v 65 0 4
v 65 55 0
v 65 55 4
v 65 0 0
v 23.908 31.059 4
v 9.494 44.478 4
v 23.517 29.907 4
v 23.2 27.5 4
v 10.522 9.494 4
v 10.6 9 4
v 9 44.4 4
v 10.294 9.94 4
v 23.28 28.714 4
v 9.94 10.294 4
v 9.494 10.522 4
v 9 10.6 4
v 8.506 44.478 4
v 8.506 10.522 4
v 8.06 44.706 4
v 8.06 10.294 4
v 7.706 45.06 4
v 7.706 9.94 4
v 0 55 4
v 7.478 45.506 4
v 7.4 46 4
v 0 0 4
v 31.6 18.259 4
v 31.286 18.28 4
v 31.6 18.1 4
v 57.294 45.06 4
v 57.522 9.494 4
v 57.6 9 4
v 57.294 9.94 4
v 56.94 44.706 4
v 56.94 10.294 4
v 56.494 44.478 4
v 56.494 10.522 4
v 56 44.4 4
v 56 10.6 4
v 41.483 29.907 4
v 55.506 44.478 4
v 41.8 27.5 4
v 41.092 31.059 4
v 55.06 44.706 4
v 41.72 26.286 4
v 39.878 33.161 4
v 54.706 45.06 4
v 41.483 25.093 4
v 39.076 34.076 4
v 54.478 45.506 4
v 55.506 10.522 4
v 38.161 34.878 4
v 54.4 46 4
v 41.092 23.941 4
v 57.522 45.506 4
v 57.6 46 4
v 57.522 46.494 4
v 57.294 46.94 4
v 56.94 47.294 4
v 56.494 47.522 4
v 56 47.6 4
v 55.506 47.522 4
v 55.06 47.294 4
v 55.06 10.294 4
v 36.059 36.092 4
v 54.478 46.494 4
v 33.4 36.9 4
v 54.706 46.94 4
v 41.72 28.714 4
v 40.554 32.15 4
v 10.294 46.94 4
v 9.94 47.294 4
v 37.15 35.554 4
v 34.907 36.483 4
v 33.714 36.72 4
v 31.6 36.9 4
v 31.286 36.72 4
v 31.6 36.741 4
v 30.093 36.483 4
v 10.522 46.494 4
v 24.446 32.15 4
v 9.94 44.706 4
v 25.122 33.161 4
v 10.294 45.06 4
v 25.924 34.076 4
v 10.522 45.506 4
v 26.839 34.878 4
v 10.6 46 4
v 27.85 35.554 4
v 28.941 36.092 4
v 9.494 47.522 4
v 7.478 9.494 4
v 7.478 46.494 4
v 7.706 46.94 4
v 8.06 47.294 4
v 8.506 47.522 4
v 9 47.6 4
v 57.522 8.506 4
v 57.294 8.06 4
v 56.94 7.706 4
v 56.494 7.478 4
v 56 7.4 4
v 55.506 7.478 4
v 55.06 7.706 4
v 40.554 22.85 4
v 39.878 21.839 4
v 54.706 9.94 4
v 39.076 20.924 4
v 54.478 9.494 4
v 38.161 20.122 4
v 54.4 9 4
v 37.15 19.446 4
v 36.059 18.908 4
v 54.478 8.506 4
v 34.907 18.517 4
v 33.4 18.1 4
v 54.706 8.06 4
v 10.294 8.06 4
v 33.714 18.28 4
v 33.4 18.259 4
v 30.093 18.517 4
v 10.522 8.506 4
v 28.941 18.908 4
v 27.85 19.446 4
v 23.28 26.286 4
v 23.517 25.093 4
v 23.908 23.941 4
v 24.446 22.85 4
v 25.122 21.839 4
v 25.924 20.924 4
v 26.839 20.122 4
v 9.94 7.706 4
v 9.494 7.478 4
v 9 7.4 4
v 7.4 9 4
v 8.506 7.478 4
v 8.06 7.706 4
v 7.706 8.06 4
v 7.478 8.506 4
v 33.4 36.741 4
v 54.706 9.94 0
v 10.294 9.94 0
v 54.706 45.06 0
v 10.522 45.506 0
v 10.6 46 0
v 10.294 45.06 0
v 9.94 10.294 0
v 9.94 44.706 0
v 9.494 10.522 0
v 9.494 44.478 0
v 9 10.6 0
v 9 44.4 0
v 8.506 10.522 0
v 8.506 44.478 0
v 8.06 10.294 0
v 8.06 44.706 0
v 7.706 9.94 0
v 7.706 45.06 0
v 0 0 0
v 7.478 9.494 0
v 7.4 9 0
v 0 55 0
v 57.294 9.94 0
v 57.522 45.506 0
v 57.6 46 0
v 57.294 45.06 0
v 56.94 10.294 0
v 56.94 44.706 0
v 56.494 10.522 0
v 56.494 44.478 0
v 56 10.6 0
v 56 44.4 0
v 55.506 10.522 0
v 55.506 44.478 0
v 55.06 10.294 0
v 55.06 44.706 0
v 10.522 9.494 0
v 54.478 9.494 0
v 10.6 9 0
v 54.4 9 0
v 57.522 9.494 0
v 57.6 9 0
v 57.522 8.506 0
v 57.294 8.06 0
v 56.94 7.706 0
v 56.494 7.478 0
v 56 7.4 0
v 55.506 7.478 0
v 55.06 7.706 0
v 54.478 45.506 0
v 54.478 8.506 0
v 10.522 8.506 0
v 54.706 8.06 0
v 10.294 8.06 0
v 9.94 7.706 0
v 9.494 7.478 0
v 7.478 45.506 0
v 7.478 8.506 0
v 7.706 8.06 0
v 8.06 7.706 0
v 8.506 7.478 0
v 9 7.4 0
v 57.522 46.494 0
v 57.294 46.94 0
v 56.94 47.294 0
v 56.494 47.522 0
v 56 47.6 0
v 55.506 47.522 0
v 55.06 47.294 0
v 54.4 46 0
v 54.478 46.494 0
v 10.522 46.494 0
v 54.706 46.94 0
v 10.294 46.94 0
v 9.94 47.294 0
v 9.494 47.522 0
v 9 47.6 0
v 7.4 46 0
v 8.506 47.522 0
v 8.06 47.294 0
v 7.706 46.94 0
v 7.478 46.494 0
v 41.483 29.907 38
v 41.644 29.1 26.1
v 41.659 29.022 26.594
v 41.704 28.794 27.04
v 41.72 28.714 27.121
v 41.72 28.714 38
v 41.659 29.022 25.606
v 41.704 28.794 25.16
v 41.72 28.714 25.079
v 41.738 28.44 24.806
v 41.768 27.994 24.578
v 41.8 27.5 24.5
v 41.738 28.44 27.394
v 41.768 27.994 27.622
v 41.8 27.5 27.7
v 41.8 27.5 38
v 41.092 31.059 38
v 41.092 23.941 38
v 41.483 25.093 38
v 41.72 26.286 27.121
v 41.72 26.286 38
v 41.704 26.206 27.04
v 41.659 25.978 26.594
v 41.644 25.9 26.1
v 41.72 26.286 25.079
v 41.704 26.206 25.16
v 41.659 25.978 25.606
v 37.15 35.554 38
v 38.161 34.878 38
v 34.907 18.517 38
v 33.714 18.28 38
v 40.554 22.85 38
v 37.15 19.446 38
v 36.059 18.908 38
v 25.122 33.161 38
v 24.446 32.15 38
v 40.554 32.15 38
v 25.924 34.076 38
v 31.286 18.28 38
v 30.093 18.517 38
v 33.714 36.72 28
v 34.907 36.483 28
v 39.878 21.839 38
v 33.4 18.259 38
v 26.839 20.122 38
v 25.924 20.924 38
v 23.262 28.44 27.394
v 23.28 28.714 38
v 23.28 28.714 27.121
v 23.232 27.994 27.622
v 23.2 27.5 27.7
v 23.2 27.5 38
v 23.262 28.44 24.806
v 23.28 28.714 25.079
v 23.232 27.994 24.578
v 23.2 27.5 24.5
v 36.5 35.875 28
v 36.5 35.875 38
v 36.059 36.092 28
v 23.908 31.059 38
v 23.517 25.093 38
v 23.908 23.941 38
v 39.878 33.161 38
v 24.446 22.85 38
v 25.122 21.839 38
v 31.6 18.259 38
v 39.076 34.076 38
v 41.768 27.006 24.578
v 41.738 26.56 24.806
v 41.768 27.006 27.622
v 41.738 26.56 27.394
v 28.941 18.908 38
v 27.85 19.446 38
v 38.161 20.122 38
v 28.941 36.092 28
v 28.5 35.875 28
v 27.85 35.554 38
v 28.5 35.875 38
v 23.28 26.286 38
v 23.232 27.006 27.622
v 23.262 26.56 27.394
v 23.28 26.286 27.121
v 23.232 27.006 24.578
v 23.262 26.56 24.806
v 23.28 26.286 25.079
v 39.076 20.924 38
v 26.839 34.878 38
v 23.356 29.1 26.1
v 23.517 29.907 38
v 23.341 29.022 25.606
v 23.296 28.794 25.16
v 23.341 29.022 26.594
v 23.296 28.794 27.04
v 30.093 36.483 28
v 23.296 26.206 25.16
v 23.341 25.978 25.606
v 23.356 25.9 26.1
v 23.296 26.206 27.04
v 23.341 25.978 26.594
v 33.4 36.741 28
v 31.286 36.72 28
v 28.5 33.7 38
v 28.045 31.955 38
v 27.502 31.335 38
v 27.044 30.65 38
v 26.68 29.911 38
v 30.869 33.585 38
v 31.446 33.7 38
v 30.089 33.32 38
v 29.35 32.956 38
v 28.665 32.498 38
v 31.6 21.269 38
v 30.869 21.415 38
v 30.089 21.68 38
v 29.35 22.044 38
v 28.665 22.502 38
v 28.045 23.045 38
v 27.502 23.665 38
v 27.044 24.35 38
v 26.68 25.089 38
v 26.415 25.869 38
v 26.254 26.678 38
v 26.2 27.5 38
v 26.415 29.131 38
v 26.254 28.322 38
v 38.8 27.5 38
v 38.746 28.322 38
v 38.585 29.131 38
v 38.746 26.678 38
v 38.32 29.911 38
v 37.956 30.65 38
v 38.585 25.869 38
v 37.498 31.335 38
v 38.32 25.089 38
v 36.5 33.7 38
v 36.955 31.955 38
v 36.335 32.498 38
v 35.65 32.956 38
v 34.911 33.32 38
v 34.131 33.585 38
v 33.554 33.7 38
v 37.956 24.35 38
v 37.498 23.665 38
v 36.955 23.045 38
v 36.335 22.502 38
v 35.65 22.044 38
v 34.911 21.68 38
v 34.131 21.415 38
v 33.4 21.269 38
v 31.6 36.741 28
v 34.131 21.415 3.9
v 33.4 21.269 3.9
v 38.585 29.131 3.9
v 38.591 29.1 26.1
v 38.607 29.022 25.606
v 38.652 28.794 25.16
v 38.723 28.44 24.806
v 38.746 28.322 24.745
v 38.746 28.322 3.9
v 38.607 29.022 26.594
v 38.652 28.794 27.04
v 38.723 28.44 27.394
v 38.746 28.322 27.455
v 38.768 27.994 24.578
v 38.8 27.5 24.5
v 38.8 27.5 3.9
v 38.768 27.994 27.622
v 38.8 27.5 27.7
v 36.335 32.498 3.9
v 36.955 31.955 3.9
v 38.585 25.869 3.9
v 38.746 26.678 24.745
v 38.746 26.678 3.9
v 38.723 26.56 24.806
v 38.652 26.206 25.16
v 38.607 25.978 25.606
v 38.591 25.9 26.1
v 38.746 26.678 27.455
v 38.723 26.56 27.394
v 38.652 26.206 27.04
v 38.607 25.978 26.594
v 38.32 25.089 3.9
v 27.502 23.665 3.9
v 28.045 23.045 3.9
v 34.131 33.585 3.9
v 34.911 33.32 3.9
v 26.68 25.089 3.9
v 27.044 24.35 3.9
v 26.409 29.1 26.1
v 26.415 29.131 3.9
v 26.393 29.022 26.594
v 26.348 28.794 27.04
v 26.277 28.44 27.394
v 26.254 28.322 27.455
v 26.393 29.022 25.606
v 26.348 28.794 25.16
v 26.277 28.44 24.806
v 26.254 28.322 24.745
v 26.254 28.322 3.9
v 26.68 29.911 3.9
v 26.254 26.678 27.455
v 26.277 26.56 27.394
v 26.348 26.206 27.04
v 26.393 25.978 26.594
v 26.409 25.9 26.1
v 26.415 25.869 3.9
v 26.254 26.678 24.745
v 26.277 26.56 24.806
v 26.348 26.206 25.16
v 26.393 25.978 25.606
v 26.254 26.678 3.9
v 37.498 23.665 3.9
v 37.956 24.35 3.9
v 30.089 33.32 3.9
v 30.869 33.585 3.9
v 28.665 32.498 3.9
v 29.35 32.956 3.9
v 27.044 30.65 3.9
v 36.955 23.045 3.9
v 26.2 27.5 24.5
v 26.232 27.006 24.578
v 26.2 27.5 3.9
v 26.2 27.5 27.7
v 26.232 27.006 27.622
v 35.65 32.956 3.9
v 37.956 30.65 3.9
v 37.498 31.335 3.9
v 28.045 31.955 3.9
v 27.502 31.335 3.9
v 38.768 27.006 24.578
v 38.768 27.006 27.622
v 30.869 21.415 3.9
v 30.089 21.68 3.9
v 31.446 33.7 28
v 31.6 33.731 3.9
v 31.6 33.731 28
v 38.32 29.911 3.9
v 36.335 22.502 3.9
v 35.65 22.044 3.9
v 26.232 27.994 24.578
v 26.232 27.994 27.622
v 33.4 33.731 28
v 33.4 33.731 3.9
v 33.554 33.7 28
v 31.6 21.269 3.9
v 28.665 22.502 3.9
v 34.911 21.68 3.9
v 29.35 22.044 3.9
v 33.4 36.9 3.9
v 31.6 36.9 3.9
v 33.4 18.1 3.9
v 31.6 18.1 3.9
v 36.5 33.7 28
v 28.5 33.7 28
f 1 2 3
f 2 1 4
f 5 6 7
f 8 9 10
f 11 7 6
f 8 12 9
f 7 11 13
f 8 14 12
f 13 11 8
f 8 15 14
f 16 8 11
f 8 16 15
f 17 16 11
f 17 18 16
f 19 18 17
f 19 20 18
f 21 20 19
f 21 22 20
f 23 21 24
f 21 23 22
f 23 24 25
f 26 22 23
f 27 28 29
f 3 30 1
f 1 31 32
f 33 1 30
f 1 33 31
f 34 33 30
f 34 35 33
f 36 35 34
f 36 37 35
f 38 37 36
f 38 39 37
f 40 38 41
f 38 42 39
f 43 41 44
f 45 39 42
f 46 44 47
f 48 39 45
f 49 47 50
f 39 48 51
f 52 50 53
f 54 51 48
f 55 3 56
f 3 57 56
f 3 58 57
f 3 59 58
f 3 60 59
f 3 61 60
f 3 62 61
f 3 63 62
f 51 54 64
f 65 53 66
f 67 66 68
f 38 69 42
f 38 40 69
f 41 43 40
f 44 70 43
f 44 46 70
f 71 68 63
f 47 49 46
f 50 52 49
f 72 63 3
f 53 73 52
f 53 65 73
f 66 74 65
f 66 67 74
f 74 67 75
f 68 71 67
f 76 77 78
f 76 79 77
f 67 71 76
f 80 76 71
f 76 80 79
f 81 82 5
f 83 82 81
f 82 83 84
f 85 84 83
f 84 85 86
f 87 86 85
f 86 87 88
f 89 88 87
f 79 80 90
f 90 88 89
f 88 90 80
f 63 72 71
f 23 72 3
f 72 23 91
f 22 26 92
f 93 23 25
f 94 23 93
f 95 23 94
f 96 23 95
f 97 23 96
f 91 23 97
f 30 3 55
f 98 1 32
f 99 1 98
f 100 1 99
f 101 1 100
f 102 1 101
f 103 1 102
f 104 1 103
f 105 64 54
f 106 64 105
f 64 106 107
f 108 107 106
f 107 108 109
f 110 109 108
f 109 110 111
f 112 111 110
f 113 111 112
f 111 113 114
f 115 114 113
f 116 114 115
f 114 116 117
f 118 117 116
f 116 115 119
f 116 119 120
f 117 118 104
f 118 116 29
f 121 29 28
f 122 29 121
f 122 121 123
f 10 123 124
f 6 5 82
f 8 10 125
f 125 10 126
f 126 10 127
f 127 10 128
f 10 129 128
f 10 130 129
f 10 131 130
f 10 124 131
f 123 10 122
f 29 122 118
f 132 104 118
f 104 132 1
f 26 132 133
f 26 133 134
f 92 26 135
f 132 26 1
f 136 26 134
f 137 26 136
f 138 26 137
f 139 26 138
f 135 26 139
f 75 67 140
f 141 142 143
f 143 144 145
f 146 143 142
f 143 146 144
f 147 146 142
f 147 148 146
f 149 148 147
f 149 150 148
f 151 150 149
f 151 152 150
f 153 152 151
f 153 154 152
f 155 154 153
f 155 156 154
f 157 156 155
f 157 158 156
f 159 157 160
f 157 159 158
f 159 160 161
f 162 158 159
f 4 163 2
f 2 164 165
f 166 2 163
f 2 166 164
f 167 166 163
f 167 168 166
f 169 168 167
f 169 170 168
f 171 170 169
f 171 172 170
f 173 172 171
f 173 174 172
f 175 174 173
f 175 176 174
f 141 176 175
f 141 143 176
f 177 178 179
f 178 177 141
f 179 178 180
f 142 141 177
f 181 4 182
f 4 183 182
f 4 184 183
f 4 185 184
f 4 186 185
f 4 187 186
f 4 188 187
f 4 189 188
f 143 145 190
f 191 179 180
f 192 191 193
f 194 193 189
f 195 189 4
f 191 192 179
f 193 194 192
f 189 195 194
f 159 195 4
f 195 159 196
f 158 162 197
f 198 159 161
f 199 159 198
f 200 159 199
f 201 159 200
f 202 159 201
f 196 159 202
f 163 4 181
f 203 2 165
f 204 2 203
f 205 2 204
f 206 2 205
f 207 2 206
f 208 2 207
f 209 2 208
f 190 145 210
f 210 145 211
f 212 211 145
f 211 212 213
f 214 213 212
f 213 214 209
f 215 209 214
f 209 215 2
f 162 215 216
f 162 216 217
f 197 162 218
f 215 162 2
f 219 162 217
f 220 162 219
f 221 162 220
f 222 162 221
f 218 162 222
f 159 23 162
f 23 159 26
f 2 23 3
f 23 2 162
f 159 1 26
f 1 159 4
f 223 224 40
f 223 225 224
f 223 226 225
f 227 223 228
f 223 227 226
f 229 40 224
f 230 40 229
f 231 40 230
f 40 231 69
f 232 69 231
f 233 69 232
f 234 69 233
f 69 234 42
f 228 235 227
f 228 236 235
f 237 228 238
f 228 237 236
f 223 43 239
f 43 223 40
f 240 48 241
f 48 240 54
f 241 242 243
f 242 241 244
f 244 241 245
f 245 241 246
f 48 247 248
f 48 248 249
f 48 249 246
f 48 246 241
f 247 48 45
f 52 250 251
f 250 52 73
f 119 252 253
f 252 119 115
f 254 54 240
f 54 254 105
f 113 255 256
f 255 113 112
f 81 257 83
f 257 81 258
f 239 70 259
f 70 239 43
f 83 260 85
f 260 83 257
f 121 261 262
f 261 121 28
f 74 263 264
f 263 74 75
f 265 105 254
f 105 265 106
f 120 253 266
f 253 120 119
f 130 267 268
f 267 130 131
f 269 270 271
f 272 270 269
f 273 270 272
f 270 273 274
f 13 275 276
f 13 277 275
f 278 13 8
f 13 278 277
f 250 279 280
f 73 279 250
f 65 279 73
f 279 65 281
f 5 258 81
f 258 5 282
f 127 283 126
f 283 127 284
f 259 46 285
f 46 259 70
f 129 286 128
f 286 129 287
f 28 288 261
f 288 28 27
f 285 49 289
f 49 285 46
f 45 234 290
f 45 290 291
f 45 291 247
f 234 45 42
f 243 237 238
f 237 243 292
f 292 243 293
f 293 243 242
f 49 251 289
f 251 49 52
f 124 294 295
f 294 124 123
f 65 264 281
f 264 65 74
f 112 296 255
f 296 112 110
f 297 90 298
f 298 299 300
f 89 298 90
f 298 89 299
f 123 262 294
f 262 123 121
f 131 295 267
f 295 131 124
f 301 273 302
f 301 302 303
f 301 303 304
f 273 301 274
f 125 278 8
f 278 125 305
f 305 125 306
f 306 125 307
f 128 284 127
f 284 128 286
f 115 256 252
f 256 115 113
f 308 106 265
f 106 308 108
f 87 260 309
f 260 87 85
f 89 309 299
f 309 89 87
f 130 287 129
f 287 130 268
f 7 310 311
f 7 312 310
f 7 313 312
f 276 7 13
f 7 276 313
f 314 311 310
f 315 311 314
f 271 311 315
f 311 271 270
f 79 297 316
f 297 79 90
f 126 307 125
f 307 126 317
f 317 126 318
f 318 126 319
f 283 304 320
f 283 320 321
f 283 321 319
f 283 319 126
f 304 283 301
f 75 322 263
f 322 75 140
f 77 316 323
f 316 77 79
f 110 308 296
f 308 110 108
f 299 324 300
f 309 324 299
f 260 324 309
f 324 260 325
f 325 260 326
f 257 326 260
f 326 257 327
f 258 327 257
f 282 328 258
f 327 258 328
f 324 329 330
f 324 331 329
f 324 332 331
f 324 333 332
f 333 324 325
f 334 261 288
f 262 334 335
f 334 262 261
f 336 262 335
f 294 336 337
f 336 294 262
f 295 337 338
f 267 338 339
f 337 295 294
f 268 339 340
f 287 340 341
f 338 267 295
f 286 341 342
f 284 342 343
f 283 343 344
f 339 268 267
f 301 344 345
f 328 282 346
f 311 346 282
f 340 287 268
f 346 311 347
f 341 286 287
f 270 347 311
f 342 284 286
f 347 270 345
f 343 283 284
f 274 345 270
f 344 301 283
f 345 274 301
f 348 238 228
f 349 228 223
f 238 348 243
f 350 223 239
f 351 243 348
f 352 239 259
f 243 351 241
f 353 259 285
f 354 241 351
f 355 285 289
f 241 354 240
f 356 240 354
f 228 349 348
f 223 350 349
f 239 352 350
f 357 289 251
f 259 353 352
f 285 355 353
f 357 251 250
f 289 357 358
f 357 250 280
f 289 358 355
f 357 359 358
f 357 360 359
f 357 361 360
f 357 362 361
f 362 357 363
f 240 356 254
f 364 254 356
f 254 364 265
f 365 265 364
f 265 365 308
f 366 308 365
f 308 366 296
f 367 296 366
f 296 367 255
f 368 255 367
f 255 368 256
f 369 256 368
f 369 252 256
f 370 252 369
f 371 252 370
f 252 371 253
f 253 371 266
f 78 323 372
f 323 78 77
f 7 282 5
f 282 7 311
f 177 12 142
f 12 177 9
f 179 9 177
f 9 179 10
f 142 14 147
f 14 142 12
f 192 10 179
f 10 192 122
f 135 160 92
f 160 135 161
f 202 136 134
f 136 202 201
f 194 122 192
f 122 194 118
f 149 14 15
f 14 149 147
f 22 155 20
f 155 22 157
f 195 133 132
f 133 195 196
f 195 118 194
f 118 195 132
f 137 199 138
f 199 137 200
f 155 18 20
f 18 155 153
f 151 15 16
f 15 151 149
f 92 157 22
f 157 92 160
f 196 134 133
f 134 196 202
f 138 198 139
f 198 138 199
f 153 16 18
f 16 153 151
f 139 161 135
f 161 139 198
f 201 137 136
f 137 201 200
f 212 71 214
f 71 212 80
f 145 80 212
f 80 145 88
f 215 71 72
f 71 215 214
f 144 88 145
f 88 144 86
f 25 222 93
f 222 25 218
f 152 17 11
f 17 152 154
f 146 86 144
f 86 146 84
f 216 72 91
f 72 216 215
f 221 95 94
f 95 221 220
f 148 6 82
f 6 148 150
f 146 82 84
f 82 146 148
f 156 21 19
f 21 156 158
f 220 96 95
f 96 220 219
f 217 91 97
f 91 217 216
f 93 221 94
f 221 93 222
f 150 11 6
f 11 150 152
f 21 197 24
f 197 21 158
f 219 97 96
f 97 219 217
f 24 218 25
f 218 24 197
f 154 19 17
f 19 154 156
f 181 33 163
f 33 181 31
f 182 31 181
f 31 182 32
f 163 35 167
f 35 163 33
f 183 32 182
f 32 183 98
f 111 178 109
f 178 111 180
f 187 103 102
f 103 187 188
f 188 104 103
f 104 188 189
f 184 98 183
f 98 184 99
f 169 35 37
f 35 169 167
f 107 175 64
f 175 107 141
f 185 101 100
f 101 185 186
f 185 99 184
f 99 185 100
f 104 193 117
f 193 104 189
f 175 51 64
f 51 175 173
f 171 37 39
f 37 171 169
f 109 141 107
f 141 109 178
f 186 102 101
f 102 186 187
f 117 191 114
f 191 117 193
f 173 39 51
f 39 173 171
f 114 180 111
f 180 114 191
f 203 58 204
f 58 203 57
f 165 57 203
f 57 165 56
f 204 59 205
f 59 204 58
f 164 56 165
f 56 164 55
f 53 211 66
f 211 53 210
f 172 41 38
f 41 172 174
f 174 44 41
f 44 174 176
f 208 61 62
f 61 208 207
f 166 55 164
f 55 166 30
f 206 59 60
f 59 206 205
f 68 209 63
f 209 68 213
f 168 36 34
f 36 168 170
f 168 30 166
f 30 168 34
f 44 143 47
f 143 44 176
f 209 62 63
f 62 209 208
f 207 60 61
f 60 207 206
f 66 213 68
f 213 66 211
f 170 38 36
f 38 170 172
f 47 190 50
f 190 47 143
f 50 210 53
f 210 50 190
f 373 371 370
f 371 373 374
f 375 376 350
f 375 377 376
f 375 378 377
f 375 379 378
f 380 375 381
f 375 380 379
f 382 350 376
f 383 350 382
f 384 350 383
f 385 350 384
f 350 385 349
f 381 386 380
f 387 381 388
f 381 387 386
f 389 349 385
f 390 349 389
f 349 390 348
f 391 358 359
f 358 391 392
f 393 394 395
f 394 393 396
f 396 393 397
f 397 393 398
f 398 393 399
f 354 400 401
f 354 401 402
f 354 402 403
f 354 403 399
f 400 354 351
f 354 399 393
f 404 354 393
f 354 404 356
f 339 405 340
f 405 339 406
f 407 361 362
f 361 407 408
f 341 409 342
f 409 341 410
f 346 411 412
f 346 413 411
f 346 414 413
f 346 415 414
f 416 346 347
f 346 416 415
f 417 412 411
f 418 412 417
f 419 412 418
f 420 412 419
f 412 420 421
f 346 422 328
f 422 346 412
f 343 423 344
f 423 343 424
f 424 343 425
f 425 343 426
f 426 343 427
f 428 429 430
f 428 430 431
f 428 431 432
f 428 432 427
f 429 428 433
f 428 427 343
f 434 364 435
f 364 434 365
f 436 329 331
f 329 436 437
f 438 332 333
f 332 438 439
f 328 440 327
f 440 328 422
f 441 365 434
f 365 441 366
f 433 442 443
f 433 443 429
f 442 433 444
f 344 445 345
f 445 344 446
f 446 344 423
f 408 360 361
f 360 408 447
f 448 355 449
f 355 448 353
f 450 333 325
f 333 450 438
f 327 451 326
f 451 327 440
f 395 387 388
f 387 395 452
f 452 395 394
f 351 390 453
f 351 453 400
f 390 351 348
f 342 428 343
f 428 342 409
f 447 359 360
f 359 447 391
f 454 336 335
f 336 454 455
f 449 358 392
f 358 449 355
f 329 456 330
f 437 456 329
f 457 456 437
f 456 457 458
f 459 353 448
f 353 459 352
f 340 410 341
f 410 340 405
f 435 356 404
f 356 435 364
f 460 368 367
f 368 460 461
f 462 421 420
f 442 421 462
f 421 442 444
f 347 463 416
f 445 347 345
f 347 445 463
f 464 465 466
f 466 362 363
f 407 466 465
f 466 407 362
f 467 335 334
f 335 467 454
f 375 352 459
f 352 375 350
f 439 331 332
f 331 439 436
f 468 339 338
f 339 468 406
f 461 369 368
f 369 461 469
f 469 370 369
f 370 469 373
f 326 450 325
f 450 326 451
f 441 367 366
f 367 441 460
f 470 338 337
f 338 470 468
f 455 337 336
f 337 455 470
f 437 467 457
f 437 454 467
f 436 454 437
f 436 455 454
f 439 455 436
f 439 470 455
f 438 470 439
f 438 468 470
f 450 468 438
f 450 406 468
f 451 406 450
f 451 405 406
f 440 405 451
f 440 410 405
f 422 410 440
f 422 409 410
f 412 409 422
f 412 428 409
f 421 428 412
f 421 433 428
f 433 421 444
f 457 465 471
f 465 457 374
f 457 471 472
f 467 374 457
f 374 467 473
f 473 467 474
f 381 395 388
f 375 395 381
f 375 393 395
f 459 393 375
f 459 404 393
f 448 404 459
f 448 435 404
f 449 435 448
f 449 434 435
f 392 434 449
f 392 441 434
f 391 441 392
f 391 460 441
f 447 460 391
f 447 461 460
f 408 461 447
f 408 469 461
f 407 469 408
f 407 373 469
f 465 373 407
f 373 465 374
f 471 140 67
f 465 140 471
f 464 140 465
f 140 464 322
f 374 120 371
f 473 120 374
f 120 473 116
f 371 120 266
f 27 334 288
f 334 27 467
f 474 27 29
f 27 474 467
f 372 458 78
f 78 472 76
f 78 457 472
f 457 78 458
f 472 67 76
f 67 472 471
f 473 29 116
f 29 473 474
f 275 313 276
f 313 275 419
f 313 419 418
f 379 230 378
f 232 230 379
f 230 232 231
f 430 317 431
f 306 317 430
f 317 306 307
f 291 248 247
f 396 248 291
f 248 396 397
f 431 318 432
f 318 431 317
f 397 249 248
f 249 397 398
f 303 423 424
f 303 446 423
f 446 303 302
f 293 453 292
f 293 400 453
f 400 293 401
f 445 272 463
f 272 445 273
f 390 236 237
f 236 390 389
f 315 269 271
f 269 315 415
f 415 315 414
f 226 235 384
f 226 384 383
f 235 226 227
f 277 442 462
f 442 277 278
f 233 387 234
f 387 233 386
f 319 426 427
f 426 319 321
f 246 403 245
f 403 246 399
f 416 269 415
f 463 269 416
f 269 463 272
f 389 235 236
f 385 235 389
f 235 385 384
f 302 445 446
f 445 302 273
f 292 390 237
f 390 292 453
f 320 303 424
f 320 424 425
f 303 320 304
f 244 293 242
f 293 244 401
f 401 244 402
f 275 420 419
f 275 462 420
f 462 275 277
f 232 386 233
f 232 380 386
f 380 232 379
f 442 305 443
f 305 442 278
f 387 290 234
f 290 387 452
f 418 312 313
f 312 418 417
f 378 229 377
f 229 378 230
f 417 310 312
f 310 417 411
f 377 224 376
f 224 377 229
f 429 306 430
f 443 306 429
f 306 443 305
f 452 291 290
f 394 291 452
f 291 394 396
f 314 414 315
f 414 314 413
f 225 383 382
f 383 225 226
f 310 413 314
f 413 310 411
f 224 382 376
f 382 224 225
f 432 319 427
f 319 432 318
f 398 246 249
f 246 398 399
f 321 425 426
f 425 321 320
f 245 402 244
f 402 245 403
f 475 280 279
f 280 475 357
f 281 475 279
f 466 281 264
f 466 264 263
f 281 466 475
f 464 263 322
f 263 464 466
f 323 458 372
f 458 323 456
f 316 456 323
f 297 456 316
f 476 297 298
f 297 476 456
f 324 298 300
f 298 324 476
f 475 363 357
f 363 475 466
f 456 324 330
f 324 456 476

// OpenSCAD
// ============================================================
//  N20 Motor Mount Bracket — BODY ONLY
//  Print this file as one STL.
//
//  Dimensions from Waveshare N20 DC Gear Motor datasheet:
//    Motor body diameter : 12mm
//    Motor body length   : 24mm
//    Encoder length      : 10mm
//    Shaft diameter      : 3mm
//
//  Print settings: 0.2mm layer, 40% infill, PETG or PLA
//  No supports needed.
// ============================================================

motor_diameter  = 12.0;
motor_length    = 24.0;
encoder_length  = 10.0;
clamp_wall      = 3.0;
base_thickness  = 4.0;
base_width      = 55.0;
base_length     = 65.0;
m3_hole         = 3.2;
tolerance       = 0.3;

motor_r       = motor_diameter / 2 + tolerance;
clamp_outer_r = motor_r + clamp_wall;
clamp_height  = motor_length + encoder_length;  // 34mm total
clamp_x       = base_length / 2;
clamp_y       = base_width / 2;

// Cable slot dimensions — for encoder ribbon cable exit
cable_slot_w  = 8.0;   // wide enough for 6-wire ribbon
cable_slot_d  = 3.0;   // depth into collar wall

difference() {
    union() {
        // ── Base plate ────────────────────────────────────
        cube([base_length, base_width, base_thickness]);

        // ── Motor clamp collar ────────────────────────────
        translate([clamp_x, clamp_y, base_thickness])
            cylinder(h = clamp_height, r = clamp_outer_r, $fn = 48);
    }

    // M3 corner mounting holes
    for (x = [9, base_length - 9])
        for (y = [9, base_width - 9])
            translate([x, y, -0.1])
                cylinder(h = base_thickness + 0.2, r = m3_hole / 2, $fn = 20);

    // Inner bore for motor body (full height)
    translate([clamp_x, clamp_y, base_thickness - 0.1])
        cylinder(h = clamp_height + 0.2, r = motor_r, $fn = 48);

    // Clamp gap slot — one side, allows collar to flex with M3 screw
    translate([clamp_x - 0.9, clamp_y - clamp_outer_r - 0.1, base_thickness - 0.1])
        cube([1.8, clamp_outer_r * 2 + 0.2, clamp_height + 0.2]);

    // M3 clamp screw hole — horizontal through collar walls
    translate([clamp_x - clamp_outer_r - 0.1, clamp_y, base_thickness + clamp_height * 0.65])
        rotate([0, 90, 0])
            cylinder(h = clamp_outer_r * 2 + 0.2, r = m3_hole / 2, $fn = 20);

    // Cable routing slot — at encoder end (top of collar)
    // Encoder ribbon exits here cleanly instead of bending around the collar
    translate([clamp_x - cable_slot_w / 2,
               clamp_y + motor_r - 0.1,
               base_thickness + motor_length])
        cube([cable_slot_w, cable_slot_d + 0.1, encoder_length + 0.2]);
}
